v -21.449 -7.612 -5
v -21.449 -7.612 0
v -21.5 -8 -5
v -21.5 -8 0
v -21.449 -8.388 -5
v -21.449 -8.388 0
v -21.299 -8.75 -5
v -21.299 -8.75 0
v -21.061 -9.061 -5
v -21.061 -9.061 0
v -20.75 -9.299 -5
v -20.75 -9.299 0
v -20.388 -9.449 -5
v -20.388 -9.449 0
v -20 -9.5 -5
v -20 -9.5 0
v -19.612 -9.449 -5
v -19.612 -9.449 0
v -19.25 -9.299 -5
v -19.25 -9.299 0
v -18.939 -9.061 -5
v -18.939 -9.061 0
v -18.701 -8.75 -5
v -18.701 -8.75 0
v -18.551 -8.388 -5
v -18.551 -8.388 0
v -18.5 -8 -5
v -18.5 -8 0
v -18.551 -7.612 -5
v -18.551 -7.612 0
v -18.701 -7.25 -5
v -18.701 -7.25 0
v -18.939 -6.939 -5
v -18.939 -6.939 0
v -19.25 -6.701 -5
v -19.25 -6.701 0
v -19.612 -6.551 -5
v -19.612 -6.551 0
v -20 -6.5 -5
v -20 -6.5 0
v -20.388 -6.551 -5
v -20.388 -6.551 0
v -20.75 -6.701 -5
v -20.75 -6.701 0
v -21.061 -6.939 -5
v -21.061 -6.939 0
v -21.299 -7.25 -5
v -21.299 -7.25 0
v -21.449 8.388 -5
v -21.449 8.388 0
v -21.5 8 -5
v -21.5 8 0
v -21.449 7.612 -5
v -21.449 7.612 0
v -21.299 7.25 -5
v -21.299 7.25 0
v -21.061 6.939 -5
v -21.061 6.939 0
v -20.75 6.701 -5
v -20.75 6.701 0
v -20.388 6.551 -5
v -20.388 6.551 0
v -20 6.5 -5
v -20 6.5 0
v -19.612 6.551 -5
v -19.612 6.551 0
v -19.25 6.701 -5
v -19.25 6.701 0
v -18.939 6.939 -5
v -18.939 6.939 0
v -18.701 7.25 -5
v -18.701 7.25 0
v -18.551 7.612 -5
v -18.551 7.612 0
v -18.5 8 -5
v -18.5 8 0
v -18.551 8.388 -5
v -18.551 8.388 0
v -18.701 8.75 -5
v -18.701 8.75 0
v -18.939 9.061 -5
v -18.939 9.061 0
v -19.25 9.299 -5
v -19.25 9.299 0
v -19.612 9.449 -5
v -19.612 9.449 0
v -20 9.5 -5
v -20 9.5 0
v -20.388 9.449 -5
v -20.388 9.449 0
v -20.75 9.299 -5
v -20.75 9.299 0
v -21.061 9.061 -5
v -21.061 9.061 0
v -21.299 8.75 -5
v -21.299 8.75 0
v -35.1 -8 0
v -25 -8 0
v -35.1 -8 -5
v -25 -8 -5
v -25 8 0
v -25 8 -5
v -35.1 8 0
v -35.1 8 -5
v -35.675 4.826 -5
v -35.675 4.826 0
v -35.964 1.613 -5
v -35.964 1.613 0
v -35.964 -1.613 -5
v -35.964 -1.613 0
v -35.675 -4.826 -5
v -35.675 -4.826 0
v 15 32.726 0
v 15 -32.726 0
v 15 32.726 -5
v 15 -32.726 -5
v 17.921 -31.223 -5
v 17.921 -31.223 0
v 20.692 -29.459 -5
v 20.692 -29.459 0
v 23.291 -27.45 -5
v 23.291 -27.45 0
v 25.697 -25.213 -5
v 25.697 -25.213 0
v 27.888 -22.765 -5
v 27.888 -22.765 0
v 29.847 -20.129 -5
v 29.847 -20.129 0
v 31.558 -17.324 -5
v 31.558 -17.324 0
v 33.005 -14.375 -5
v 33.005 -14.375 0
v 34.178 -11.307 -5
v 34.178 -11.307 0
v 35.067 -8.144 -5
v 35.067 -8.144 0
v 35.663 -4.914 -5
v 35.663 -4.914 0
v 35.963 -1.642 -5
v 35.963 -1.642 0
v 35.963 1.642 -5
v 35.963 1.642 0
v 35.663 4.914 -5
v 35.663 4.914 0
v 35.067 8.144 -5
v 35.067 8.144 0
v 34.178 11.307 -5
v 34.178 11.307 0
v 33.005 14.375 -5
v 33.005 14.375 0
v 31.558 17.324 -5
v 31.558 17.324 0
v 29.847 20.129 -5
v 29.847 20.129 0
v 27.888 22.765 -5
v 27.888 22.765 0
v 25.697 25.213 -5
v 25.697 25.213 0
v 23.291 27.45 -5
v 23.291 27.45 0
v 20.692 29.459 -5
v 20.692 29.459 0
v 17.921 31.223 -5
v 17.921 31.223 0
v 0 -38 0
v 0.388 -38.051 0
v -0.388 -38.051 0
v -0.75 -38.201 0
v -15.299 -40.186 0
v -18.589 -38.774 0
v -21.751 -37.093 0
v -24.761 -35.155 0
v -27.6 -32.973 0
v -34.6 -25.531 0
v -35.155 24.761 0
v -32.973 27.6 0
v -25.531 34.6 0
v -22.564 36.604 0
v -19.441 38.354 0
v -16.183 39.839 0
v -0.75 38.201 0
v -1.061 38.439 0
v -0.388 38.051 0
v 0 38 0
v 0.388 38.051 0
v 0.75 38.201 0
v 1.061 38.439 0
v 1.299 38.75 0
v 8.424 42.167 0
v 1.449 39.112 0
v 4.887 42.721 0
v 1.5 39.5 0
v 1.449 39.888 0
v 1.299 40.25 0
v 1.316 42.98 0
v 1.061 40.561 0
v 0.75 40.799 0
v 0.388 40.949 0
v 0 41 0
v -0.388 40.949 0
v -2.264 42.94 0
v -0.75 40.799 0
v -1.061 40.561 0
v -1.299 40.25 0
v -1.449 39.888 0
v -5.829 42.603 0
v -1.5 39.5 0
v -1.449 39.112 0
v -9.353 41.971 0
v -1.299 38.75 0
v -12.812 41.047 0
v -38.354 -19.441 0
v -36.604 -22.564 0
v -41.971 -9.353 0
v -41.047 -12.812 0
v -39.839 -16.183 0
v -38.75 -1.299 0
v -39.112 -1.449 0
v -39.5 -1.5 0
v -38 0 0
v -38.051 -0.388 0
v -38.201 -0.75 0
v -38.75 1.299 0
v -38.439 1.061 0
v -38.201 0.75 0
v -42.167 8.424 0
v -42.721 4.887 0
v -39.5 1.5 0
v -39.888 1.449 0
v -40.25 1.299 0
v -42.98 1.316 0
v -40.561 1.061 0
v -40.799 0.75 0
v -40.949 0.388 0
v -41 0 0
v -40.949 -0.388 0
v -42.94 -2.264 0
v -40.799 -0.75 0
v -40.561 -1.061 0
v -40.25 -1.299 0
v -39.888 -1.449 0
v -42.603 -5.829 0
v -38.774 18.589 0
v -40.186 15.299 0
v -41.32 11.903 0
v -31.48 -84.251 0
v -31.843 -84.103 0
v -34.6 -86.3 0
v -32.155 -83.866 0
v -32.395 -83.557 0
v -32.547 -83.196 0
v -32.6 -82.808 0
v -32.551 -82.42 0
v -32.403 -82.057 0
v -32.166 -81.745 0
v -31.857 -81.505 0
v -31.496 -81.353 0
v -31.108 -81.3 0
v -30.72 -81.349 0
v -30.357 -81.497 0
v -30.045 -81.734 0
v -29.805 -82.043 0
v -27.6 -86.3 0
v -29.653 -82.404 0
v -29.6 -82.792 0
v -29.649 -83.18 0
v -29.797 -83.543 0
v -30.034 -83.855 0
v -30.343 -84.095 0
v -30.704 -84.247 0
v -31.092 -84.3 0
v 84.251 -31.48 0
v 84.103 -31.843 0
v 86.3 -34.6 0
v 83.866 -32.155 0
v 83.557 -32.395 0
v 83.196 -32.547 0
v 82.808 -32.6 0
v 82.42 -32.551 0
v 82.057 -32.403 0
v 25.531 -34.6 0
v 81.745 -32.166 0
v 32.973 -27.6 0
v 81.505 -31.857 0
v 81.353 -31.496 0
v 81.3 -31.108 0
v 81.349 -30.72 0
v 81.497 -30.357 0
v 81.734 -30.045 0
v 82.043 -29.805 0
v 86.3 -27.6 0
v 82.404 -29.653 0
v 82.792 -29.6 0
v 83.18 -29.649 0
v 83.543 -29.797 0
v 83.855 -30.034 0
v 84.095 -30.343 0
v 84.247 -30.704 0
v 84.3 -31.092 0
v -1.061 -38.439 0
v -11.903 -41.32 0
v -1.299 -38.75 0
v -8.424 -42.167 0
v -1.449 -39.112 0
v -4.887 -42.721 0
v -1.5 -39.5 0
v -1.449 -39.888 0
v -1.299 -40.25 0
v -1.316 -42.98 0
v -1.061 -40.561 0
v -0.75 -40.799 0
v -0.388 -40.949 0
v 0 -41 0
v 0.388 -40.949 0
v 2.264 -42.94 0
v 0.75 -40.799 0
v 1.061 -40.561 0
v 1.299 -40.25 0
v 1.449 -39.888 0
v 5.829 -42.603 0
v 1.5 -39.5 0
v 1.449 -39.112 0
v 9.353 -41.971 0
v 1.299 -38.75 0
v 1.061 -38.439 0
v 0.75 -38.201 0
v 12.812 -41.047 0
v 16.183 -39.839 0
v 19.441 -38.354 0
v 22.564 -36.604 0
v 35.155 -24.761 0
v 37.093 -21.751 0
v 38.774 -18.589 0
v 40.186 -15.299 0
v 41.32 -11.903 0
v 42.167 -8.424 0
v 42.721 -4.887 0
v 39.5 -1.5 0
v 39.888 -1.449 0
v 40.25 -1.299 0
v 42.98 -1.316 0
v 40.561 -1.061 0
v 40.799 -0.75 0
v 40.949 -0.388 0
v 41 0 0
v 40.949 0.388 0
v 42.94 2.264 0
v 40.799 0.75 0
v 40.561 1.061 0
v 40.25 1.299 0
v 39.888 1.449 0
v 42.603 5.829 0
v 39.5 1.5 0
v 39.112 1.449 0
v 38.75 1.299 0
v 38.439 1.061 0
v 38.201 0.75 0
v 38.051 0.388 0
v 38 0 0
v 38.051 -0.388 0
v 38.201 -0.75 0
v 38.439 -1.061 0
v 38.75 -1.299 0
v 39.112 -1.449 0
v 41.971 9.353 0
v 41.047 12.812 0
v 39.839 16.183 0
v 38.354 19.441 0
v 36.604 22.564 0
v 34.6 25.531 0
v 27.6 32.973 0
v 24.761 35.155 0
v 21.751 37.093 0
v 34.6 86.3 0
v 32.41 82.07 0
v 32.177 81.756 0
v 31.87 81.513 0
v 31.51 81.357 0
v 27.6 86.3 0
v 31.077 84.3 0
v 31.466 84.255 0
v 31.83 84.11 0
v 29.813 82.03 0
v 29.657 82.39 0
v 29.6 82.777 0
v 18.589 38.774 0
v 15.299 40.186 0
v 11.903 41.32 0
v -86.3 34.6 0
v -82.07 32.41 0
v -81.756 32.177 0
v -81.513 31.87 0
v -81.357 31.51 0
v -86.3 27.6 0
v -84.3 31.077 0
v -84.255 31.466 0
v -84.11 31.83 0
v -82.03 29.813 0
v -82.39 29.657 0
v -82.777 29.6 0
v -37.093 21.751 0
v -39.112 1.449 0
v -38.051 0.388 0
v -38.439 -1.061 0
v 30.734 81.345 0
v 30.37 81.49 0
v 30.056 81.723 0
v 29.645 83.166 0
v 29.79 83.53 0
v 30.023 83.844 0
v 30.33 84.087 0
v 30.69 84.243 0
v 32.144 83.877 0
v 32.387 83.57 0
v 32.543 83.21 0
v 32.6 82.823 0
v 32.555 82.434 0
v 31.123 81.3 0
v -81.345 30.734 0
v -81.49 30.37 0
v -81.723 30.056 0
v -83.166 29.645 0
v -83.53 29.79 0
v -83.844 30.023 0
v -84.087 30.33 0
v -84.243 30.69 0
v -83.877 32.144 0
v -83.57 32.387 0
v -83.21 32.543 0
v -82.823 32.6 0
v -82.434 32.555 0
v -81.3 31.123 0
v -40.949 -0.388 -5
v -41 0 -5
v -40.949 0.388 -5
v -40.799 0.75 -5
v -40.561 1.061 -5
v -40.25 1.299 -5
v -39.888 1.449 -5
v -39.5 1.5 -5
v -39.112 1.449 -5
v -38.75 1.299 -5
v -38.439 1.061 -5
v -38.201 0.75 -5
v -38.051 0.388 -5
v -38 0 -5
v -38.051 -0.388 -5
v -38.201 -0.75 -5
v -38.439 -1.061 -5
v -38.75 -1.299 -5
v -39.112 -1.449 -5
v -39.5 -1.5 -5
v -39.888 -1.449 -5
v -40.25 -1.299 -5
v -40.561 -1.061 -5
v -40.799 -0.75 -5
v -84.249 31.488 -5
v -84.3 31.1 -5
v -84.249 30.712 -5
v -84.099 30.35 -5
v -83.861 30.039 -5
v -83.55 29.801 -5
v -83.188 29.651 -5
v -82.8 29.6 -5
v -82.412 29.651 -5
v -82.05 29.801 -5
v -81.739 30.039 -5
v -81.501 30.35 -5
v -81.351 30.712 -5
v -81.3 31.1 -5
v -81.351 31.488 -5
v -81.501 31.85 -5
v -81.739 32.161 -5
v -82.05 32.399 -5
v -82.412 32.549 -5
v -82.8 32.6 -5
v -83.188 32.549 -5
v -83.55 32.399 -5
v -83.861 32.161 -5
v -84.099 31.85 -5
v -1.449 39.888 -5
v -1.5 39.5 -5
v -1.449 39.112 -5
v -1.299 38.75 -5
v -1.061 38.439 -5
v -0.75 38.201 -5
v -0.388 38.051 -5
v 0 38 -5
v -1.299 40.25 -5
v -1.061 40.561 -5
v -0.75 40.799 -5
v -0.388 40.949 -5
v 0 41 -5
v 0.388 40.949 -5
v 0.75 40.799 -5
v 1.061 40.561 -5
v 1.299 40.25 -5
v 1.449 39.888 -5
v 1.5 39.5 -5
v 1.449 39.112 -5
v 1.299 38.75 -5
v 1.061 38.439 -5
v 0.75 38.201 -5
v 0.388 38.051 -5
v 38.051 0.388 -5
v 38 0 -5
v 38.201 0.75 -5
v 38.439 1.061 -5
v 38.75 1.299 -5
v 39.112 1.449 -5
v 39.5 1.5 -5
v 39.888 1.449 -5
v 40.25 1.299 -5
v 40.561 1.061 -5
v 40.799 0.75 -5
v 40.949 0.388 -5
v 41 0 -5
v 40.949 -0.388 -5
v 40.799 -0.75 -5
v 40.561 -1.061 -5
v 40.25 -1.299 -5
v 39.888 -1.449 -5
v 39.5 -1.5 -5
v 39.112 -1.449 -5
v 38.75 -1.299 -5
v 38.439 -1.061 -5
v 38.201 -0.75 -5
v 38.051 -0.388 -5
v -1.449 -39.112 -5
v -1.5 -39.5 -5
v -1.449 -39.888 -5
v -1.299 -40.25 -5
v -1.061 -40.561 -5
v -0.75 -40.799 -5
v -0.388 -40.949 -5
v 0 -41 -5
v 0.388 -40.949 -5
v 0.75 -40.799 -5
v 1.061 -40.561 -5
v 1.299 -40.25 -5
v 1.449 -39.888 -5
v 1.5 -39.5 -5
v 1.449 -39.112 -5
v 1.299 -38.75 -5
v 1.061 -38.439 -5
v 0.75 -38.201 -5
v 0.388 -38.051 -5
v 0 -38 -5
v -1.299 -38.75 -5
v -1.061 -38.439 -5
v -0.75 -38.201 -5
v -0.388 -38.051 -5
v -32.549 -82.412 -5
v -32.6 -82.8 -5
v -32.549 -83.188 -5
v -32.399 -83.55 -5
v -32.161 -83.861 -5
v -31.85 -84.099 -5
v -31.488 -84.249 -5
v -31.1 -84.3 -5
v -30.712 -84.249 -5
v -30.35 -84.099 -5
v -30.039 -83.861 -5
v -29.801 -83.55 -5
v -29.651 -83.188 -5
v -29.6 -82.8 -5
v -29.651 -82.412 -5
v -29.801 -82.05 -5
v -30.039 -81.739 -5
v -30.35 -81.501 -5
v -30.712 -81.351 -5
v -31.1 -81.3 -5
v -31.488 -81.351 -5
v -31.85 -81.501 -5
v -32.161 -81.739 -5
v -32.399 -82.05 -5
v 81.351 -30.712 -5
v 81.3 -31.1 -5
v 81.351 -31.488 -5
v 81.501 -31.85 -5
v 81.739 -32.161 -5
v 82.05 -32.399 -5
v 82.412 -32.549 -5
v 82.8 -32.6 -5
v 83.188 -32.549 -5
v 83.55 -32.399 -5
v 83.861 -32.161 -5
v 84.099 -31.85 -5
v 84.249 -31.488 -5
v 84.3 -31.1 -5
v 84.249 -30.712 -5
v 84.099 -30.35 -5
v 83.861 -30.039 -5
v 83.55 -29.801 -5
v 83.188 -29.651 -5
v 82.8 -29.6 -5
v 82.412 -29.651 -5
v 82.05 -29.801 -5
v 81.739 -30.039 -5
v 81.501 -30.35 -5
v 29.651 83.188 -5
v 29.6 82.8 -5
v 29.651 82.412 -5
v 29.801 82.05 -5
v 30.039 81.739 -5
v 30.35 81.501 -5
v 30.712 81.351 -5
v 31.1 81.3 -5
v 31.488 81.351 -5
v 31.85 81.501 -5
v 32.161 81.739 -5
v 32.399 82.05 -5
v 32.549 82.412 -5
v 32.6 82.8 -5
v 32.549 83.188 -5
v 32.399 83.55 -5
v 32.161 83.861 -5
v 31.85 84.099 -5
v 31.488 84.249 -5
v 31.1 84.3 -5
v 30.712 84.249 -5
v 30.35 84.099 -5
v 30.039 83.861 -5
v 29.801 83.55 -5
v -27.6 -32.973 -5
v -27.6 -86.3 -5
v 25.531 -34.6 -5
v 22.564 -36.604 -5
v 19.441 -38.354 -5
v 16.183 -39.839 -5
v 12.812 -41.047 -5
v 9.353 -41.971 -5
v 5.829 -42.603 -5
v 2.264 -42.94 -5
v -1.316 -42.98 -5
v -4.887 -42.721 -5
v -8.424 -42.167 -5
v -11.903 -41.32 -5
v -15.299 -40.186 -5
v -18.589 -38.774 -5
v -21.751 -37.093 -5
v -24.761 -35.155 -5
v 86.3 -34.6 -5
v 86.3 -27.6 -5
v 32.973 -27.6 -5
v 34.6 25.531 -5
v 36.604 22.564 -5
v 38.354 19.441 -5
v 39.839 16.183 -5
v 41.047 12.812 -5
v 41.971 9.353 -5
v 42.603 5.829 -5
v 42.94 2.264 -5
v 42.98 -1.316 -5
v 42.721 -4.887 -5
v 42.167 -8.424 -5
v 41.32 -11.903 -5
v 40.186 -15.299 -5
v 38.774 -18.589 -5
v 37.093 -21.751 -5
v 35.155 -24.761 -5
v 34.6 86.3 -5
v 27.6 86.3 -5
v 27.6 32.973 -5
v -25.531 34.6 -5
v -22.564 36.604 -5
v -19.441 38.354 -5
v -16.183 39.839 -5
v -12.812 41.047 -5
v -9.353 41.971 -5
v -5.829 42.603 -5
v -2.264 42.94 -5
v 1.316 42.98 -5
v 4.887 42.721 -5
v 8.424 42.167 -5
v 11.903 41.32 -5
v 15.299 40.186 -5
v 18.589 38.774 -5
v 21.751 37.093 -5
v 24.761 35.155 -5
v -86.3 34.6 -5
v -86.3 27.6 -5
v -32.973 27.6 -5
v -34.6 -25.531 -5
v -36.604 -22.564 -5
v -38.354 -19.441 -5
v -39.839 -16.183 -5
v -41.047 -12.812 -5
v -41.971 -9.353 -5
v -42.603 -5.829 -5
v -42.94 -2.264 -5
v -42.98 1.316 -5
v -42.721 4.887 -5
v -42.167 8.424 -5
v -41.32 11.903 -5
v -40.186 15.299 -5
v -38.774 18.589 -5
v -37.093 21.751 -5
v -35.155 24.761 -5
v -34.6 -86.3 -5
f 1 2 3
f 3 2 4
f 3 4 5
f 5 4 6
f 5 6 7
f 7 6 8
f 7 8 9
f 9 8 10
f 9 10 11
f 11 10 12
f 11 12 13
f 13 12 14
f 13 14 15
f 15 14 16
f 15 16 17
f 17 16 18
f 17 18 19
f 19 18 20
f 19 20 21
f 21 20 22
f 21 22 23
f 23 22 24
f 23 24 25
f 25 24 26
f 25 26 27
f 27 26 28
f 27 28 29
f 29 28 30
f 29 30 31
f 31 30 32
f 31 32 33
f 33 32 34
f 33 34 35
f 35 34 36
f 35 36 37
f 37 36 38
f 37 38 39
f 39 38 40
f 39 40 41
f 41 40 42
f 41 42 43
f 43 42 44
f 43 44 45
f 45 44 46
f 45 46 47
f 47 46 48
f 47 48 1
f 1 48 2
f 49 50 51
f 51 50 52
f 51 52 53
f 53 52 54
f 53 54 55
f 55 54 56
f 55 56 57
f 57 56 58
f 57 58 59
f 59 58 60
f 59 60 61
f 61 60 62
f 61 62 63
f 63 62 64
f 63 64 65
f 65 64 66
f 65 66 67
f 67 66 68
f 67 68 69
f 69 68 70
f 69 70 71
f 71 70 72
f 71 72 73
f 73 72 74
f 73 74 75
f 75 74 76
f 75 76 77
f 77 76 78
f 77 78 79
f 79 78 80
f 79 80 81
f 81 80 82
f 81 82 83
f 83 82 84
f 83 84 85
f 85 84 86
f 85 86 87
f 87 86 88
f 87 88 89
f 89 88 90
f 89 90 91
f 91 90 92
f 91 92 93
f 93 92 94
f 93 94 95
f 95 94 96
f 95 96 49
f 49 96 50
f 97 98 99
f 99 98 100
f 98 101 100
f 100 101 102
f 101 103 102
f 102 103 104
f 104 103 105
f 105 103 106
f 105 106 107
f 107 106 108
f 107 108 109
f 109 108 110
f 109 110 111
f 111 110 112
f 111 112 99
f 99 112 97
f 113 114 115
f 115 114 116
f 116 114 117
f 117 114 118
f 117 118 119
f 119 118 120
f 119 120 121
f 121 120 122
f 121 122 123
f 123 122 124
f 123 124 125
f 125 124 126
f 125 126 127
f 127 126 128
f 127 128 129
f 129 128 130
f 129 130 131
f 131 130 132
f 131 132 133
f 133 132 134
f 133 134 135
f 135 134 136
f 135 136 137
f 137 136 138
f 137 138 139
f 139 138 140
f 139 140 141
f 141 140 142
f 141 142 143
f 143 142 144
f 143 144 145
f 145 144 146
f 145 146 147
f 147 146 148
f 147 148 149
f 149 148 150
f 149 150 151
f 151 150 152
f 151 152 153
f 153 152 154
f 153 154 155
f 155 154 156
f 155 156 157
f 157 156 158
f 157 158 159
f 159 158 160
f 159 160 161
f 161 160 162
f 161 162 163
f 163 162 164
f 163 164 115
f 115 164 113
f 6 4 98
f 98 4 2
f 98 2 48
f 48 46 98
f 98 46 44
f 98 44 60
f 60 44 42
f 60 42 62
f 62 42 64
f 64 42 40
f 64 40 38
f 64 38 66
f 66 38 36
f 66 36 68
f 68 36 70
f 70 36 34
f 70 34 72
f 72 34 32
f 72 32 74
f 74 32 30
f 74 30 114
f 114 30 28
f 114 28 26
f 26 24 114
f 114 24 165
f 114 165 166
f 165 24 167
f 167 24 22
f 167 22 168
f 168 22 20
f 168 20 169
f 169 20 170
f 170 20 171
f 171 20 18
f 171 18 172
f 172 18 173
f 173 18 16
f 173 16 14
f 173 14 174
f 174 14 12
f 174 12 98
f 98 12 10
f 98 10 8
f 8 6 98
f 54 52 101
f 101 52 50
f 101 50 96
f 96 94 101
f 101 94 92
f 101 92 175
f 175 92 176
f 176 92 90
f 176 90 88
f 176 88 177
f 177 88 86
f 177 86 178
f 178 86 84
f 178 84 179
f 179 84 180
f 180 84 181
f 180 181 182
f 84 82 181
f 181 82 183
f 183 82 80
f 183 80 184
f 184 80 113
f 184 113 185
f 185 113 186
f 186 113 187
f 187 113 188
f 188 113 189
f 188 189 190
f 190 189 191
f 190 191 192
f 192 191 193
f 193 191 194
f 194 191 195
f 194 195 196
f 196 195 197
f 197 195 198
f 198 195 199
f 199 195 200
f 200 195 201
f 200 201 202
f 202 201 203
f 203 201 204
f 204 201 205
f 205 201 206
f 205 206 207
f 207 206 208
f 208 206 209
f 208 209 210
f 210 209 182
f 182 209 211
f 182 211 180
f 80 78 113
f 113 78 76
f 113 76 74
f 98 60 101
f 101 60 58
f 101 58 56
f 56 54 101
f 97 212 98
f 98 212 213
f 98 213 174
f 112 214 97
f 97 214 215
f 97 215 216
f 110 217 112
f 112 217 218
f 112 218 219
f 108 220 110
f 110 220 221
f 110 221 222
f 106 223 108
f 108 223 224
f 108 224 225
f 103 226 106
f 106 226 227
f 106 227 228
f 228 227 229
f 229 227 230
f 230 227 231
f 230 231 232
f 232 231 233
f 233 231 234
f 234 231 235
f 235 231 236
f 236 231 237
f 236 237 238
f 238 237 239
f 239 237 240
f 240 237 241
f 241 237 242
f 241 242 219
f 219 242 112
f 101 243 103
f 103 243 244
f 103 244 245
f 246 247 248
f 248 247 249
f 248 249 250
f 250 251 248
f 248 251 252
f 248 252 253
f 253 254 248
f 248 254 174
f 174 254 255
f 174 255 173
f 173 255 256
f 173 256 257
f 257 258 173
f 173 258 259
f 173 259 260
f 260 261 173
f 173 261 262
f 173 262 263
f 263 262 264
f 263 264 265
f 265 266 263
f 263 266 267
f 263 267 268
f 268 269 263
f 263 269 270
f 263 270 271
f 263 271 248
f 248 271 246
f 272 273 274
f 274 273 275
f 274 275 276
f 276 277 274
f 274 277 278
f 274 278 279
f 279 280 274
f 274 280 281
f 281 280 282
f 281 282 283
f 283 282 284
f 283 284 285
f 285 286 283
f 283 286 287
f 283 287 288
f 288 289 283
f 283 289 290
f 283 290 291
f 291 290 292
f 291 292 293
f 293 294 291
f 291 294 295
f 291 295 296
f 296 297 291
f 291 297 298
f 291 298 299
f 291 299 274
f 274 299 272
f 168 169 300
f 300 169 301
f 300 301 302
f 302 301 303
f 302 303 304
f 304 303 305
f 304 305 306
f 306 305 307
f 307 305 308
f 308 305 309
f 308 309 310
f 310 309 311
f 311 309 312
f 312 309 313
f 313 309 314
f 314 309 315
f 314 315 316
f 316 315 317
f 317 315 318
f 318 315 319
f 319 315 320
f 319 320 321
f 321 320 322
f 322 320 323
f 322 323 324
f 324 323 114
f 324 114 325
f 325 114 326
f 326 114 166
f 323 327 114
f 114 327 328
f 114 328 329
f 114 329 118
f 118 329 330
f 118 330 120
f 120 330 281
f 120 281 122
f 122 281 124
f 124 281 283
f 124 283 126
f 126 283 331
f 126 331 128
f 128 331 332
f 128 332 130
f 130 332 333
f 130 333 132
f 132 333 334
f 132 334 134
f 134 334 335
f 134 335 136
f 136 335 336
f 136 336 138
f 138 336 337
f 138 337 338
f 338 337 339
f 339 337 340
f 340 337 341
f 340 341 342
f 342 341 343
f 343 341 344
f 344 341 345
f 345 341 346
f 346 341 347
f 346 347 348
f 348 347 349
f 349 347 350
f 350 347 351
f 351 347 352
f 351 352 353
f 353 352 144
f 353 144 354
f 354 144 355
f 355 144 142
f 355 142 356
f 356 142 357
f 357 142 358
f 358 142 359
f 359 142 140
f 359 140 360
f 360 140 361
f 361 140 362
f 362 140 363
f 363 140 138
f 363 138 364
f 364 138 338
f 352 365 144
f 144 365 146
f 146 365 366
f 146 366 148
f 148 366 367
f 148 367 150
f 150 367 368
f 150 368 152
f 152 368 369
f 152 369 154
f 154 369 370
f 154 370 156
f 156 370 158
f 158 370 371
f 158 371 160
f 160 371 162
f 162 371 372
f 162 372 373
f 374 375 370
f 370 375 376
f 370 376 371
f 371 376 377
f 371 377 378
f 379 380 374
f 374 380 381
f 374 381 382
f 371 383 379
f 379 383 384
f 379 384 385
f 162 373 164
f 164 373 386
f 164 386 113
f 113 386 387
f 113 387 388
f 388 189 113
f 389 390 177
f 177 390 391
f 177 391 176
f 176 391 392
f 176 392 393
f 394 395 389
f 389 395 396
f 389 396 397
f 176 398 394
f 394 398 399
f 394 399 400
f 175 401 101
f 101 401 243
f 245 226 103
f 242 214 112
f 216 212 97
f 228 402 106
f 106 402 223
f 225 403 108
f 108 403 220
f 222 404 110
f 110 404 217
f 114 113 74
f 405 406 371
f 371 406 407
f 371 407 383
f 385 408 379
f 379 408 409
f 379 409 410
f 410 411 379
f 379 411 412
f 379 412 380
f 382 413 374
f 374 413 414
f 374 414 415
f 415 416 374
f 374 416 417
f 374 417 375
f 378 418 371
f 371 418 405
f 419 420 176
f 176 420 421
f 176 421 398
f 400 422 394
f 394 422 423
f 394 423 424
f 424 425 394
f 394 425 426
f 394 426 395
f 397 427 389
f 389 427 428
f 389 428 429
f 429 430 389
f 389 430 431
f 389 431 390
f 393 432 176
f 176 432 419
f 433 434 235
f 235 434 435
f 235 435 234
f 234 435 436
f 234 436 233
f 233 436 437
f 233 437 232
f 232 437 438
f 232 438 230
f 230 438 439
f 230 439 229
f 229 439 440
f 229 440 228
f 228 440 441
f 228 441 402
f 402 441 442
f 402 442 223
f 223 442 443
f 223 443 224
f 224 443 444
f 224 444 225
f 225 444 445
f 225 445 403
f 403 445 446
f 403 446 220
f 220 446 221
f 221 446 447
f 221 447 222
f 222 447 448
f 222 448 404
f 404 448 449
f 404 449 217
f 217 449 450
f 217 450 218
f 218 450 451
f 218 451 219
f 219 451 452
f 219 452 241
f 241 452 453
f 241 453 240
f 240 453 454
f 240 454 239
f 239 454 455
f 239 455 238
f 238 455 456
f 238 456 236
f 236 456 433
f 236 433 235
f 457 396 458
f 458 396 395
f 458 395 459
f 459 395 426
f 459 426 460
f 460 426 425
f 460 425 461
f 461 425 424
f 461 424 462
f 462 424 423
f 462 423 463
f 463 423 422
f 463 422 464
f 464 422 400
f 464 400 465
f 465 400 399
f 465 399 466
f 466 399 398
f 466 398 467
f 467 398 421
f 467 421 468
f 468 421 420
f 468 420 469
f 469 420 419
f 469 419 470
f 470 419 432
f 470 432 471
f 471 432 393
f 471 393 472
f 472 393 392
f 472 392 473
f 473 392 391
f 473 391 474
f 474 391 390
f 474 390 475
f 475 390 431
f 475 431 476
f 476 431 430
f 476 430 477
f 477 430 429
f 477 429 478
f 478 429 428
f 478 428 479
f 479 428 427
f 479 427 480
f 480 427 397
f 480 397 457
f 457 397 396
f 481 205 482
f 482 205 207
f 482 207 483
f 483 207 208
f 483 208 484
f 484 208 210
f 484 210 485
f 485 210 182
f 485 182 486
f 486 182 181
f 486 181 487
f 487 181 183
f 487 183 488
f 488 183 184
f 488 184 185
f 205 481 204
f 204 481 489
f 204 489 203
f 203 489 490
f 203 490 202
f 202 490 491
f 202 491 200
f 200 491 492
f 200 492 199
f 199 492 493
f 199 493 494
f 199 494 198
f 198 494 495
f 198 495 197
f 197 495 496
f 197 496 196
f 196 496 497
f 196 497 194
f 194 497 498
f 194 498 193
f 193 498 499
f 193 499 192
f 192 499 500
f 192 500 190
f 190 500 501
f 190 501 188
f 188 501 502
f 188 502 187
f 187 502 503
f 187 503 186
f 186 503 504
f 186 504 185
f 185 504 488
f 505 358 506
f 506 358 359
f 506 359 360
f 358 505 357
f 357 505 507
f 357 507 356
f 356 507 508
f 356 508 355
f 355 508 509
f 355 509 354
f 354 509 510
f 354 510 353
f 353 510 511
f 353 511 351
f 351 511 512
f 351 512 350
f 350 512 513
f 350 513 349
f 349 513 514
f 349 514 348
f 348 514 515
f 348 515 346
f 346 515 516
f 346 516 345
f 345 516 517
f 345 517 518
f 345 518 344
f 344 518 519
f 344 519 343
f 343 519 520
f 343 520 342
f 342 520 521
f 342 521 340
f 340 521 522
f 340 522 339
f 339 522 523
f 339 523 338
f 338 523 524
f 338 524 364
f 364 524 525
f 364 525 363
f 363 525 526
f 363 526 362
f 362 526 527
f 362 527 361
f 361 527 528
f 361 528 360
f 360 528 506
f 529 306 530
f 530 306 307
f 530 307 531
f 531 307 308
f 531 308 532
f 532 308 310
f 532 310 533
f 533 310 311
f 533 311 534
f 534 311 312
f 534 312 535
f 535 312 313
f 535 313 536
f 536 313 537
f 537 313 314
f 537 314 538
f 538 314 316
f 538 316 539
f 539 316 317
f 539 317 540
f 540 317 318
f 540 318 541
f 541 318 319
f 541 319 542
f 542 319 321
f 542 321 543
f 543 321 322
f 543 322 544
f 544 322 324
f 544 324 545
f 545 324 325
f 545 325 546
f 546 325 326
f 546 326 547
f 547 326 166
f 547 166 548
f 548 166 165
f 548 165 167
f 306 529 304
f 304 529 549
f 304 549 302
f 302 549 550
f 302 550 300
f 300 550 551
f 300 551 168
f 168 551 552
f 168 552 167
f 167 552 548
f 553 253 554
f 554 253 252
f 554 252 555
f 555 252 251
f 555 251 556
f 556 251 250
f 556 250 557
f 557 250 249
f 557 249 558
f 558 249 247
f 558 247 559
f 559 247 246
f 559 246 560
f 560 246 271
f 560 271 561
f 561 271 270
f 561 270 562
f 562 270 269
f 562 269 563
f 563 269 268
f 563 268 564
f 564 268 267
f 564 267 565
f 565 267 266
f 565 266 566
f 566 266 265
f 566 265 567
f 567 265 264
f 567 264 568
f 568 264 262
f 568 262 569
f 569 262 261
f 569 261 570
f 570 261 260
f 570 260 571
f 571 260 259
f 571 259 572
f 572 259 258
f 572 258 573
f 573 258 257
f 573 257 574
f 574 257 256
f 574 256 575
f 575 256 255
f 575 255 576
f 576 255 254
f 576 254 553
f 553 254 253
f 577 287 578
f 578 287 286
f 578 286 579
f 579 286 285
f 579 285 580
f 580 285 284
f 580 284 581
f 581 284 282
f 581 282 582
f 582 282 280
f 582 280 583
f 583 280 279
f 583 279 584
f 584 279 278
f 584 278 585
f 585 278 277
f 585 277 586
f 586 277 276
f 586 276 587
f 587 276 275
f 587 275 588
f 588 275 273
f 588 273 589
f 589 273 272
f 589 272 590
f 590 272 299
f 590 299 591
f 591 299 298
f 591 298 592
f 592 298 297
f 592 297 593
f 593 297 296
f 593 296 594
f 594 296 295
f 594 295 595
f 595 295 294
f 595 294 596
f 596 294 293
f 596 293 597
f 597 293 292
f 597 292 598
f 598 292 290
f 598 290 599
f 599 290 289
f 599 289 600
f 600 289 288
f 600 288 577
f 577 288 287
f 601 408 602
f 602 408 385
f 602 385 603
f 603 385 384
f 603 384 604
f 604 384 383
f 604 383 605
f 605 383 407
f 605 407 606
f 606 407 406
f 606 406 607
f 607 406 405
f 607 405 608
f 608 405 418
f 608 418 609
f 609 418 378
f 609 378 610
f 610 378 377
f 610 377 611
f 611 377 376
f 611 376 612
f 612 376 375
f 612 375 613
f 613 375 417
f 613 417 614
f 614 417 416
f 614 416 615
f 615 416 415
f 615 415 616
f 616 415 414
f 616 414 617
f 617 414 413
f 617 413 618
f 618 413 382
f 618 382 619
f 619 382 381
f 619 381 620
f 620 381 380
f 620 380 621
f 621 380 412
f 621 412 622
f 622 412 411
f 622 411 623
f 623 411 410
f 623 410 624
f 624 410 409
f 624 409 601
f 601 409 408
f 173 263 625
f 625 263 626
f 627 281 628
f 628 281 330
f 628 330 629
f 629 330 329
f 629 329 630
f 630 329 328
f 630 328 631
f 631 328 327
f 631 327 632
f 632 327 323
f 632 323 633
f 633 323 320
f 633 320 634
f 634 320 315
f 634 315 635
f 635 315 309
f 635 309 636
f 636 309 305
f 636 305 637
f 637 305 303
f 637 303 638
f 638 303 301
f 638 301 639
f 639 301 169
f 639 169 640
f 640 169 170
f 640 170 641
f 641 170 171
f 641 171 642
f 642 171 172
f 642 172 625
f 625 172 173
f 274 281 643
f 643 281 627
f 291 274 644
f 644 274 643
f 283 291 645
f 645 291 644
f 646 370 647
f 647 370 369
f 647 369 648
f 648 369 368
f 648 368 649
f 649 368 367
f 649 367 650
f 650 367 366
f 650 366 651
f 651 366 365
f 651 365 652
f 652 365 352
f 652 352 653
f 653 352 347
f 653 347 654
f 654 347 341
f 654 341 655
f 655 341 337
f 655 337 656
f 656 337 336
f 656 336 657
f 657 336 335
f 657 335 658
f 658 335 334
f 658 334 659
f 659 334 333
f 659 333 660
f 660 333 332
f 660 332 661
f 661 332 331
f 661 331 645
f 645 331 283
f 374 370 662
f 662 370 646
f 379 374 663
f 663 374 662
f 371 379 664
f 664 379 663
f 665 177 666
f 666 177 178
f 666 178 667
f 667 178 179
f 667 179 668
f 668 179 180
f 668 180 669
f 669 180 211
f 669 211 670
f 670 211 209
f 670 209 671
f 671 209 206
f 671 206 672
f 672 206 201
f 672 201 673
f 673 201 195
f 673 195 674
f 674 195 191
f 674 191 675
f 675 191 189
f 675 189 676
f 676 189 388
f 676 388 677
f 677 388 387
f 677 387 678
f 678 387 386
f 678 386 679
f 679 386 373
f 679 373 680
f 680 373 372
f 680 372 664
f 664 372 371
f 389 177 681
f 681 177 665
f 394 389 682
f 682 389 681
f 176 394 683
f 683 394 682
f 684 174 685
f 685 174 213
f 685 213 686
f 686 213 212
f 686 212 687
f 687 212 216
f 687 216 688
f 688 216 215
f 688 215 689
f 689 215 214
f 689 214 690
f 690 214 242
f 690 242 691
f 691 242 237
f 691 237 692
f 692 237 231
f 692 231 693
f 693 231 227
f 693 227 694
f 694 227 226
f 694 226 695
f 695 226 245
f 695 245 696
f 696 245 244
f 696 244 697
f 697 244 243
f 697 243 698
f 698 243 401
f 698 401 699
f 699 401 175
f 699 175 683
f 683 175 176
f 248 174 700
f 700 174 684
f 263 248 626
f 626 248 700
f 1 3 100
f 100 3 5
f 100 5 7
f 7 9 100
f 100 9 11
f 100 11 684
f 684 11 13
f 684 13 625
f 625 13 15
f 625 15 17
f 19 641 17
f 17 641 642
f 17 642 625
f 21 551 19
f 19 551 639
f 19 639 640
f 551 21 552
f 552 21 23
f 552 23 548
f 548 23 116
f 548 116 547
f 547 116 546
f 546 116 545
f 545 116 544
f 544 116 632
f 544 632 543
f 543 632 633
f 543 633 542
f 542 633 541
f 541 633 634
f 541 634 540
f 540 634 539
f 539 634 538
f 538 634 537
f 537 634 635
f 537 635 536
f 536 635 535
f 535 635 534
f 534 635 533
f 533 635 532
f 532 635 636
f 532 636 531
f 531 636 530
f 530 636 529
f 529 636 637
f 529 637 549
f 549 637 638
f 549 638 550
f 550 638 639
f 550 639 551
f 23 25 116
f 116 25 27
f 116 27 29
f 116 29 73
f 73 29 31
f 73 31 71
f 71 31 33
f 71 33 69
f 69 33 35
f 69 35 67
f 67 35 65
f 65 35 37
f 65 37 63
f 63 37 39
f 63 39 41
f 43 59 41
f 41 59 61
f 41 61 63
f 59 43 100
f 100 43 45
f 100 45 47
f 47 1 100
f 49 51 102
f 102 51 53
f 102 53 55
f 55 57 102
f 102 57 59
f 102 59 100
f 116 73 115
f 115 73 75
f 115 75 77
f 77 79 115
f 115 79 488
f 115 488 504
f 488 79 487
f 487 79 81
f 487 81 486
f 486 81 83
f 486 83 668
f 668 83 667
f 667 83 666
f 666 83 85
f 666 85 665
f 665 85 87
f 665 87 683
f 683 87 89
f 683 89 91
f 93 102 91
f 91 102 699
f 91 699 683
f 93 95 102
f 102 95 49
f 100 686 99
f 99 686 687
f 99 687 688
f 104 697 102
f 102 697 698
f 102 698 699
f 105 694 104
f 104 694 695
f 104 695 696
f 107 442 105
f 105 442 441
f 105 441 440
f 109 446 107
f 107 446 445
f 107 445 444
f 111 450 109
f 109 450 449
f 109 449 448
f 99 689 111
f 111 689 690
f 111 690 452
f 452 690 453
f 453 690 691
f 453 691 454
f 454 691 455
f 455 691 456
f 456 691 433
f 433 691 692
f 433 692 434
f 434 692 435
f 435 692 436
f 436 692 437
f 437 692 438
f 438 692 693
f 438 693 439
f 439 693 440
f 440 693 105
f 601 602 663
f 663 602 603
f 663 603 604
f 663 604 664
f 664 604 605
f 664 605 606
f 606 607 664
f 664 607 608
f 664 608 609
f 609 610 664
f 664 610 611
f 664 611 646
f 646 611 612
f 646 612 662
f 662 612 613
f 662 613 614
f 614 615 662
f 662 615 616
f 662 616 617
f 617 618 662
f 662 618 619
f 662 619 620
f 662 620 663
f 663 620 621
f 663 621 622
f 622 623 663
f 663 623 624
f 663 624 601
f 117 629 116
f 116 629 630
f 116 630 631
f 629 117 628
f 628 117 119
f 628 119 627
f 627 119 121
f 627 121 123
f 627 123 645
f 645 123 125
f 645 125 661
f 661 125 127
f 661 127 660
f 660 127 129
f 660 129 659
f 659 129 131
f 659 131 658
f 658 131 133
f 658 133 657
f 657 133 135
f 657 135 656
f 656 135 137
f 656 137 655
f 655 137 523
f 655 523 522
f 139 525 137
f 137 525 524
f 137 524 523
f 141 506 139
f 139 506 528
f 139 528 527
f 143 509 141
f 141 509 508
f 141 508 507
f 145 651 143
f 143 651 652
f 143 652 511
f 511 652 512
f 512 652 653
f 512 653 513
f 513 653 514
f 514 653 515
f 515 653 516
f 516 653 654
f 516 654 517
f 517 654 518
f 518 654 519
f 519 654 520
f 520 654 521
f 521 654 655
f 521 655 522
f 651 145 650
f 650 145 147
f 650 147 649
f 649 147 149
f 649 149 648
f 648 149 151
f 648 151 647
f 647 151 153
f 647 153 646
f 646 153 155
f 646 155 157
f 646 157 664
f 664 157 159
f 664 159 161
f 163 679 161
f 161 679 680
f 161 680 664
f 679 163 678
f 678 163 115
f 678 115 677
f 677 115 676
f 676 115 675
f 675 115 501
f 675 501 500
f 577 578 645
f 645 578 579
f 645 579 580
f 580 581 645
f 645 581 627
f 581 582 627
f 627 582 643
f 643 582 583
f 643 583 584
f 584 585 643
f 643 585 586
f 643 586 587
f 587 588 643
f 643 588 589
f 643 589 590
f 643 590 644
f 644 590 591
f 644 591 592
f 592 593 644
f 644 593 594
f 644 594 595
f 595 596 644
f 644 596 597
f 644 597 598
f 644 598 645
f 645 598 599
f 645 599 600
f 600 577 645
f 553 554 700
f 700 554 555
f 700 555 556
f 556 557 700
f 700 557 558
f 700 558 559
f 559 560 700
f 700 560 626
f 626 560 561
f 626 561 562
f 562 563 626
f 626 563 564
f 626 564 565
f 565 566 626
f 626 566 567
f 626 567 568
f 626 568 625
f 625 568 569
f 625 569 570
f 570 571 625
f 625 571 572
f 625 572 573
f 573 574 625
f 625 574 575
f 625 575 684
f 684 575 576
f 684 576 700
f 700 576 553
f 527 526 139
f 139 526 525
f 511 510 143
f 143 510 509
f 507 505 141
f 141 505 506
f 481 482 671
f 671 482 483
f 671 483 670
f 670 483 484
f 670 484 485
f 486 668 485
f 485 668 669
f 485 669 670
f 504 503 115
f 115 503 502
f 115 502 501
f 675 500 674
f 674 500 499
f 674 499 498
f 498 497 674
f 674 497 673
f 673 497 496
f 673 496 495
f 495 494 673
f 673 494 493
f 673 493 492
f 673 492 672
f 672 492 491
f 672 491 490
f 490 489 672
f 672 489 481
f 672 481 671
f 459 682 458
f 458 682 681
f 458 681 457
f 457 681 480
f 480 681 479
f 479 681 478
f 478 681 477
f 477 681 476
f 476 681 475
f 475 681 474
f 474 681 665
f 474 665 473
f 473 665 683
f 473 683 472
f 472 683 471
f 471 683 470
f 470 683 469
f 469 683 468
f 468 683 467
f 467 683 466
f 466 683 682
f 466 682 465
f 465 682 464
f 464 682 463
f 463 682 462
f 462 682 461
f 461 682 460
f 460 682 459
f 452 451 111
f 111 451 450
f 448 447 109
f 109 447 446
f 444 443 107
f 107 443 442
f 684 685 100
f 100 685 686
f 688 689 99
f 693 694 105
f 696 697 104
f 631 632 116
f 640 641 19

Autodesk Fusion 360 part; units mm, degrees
sketch "スケッチ1" plane through (0, 0, 0) normal (0, 0, 1) x (1, 0, 0)
  circle A0 centre (0, 0) radius 37
  circle A1 centre (0, 0) radius 42
  line L0 (0, 65) -> (28.613, 65)
  line L1 (50, 0) -> (50, -28.613)
  line L2 (0, -50) -> (-28.613, -50)
  line L3 (-50, 0) -> (-50, 28.613)
  line L4 (-50, 28.613) -> (-30.7457, 28.613)
  line L5 (-30.7457, 28.613) -> (-85.2927, 28.613)
  line L6 (-28.613, -50) -> (-28.613, -30.7457)
  line L7 (-28.613, -30.7457) -> (-28.613, -85.2927)
  line L8 (50, -28.613) -> (30.7457, -28.613)
  line L9 (30.7457, -28.613) -> (85.2927, -28.613)
  line L10 (28.613, 65) -> (28.613, 30.7457)
  line L11 (28.613, 30.7457) -> (28.613, 85.2927)
  line L12 (-85.2927, 28.613) -> (-85.2927, 33.613)
  line L13 (-85.2927, 33.613) -> (-25.1827, 33.613)
  line L14 (28.613, 85.2927) -> (33.613, 85.2927)
  line L15 (33.613, 85.2927) -> (33.613, 25.1827)
  line L16 (85.2927, -28.613) -> (85.2927, -33.613)
  line L17 (85.2927, -33.613) -> (25.1827, -33.613)
  line L18 (-28.613, -85.2927) -> (-33.613, -85.2927)
  line L19 (-33.613, -85.2927) -> (-33.613, -25.1827)
  line L20 (-85.2927, 33.613) -> (-80.2927, 33.613)
  line L21 (-85.2927, 31.113) -> (-82.7927, 31.113)
  circle A2 centre (-82.7927, 31.113) radius 1.5
  line L22 (31.113, 85.2927) -> (31.113, 82.7927)
  circle A3 centre (31.113, 82.7927) radius 1.5
  line L23 (85.2927, -31.113) -> (82.7927, -31.113)
  line L24 (-31.113, -85.2927) -> (-31.113, -82.7927)
  circle A4 centre (-31.113, -82.7927) radius 1.5
  circle A5 centre (82.7927, -31.113) radius 1.5
  dimension "d1" = 74
  dimension "d2" = 84
  dimension "d3" = 28.613
  dimension "d4" = 28.613
  dimension "d5" = 28.613
  dimension "d6" = 28.613
  dimension "d7" = 54.547
  dimension "d8" = 54.547
  dimension "d9" = 54.547
  dimension "d10" = 54.547
  dimension "d11" = 5
  dimension "d12" = 5
  dimension "d13" = 5
  dimension "d14" = 5
  dimension "d15" = 5
  dimension "d16" = 3
  dimension "d17" = 2.5
  dimension "d18" = 3
  dimension "d19" = 2.5
  dimension "d20" = 2.5
  dimension "d21" = 3
  dimension "d22" = 3
extrude "押し出し1" add sketch "スケッチ1" along normal blind 3
sketch "スケッチ2" plane through (0, 0, 0) normal (0, 0, 1) x (1, 0, 0)
  line L0 (0, 0) -> (0, 37)
  line L1 (0, 0) -> (37, 0)
  line L2 (0, 0) -> (-37, 0)
  line L3 (0, 0) -> (0, -37)
  line L4 (-37, 0) -> (-39.5, 0)
  line L5 (0, 37) -> (0, 39.5)
  line L6 (37, 0) -> (39.5, 0)
  line L7 (0, -37) -> (0, -39.5)
  circle A0 centre (0, -39.5) radius 1.5
  circle A1 centre (-39.5, 0) radius 1.5
  circle A2 centre (0, 39.5) radius 1.5
  circle A3 centre (39.5, 0) radius 1.5
  dimension "d25" = 37
  dimension "d26" = 37
  dimension "d27" = 37
  dimension "d28" = 37
  dimension "d30" = 2.5
  dimension "d31" = 2.5
  dimension "d32" = 2.5
  dimension "d33" = 2.5
  dimension "d34" = 3
  dimension "d35" = 3
  dimension "d36" = 3
  dimension "d37" = 3
extrude "押し出し2" cut sketch "スケッチ2" along normal blind 3
sketch "スケッチ3" plane through (0, 0, 0) normal (0, 0, 1) x (1, 0, 0)
  line L0 (-31.1, -82.8) -> (-31.1, -83.7)
  line L1 (-31.1, -82.8) -> (-31.1, -86.8)
  line L2 (-31.1, -86.8) -> (-27.1, -86.8)
sketch "スケッチ4" plane through (0, 0, 0) normal (0, 0, 1) x (1, 0, 0)
  circle A0 centre (-82.8, 31.1) radius 1.5
  line L0 (-82.8, 27.6) -> (-86.3, 27.6)
  line L1 (-86.3, 27.6) -> (-86.3, 34.6)
  line L2 (-86.3, 34.6) -> (-82.8171, 34.6)
  line L3 (-39.5, 0) -> (-36, 0)
  line L4 (-39.5, 0) -> (-43, 0)
  circle A1 centre (0, 0) radius 36
  line L5 (31.1, 82.8) -> (34.6, 82.8)
  line L6 (34.6, 82.8) -> (34.6, 86.3)
  line L7 (34.6, 86.3) -> (27.6, 86.3)
  line L8 (82.8, -31.1) -> (86.3, -31.1)
  line L9 (86.3, -31.1) -> (86.3, -34.6)
  line L10 (86.3, -31.1) -> (86.3, -27.6)
  line L11 (-31.1, -82.8) -> (-31.1, -86.8)
  line L12 (-31.1, -82.8) -> (-31.1, -86.3)
  line L13 (-31.1, -86.3) -> (-27.6, -86.3)
  line L14 (-31.1, -86.3) -> (-34.6, -86.3)
  line L15 (-82.8, 27.6) -> (-32.9733, 27.6)
  line L16 (-82.8171, 34.6) -> (-25.5312, 34.6)
  line L17 (27.6, 86.3) -> (27.6, 85.5502)
  line L18 (27.6, 85.5502) -> (27.6, 32.9733)
  line L19 (34.6, 82.8) -> (34.6, 25.5312)
  line L20 (86.3, -27.6) -> (32.9733, -27.6)
  line L21 (86.3, -34.6) -> (25.5312, -34.6)
  line L22 (-27.6, -86.3) -> (-27.6, -32.9733)
  line L23 (-34.6, -86.3) -> (-34.6, -25.5312)
  arc A2 (-32.9733, 27.6) -> (-34.6, -25.5312) centre (0, 0) ccw
  arc A3 (27.6, 32.9733) -> (-25.5312, 34.6) centre (0, 0) ccw
  arc A4 (32.9733, -27.6) -> (34.6, 25.5312) centre (0, 0) ccw
  arc A5 (-27.6, -32.9733) -> (25.5312, -34.6) centre (0, 0) ccw
  circle A6 centre (0, 0) radius 42
  circle A7 centre (0, 0) radius 37
  line L24 (-82.8, 31.1) -> (-82.8, 28.6)
  line L25 (-82.8, 28.6) -> (-30.7578, 28.6)
  line L26 (-82.8, 31.1) -> (-82.8, 33.6)
  circle A8 centre (-31.1, -82.8) radius 1.5
  circle A9 centre (82.8, -31.1) radius 1.5
  circle A10 centre (31.1, 82.8) radius 1.5
  circle A11 centre (39.5, 0) radius 1.5
  circle A12 centre (0, 39.5) radius 1.5
  circle A13 centre (-39.5, 0) radius 1.5
  circle A14 centre (0, -39.5) radius 1.5
  dimension "d40" = 7
  dimension "d42" = 7
  dimension "d43" = 84
  dimension "d44" = 2.5
  dimension "d45" = 3
extrude "押し出し3" add sketch "スケッチ4" against normal blind 5 contours L0 L1 L2 L6 L7 L9 L10 L13 L14 L15 L16 L17 L18 L19 L20 L21 L22 L23 A2 A3 A4 A5 | A7 | A6
extrude "押し出し4" cut 1 faces at (-45.9464, 31.5175, 3) along direction (0, 0, -1) blind 3
sketch "スケッチ5" plane through (0, 0, 0) normal (0, 0, 1) x (1, 0, 0)
  line L0 (15, 33) -> (15, -33)
  arc A0 (15, 32.7261) -> (15, -32.7261) centre (0, 0) ccw
  dimension "d50" = 36
extrude "押し出し5" add sketch "スケッチ5" against normal blind 5
sketch "スケッチ6" plane through (0, 0, 0) normal (0, 0, 1) x (1, 0, 0)
  line L0 (0, 0) -> (-20, 0)
  circle A0 centre (-20, -8) radius 1.5
  circle A1 centre (-20, 8) radius 1.5
  circle A2 centre (0, 0) radius 36
  line L1 (-20, -8) -> (-35.0999, -8)
  line L2 (-20, 8) -> (-35.0999, 8)
  line L3 (-20, -8) -> (-25, -8)
  line L4 (-25, 8) -> (-25, -8)
  dimension "d53" = 8
  dimension "d54" = 8
  dimension "d55" = 3
  dimension "d56" = 3
extrude "押し出し6" cut sketch "スケッチ6" against normal blind 5 contours A0 | A1 | A2 L1 L2 L4 picked at (-28.6332, 0.8955)
